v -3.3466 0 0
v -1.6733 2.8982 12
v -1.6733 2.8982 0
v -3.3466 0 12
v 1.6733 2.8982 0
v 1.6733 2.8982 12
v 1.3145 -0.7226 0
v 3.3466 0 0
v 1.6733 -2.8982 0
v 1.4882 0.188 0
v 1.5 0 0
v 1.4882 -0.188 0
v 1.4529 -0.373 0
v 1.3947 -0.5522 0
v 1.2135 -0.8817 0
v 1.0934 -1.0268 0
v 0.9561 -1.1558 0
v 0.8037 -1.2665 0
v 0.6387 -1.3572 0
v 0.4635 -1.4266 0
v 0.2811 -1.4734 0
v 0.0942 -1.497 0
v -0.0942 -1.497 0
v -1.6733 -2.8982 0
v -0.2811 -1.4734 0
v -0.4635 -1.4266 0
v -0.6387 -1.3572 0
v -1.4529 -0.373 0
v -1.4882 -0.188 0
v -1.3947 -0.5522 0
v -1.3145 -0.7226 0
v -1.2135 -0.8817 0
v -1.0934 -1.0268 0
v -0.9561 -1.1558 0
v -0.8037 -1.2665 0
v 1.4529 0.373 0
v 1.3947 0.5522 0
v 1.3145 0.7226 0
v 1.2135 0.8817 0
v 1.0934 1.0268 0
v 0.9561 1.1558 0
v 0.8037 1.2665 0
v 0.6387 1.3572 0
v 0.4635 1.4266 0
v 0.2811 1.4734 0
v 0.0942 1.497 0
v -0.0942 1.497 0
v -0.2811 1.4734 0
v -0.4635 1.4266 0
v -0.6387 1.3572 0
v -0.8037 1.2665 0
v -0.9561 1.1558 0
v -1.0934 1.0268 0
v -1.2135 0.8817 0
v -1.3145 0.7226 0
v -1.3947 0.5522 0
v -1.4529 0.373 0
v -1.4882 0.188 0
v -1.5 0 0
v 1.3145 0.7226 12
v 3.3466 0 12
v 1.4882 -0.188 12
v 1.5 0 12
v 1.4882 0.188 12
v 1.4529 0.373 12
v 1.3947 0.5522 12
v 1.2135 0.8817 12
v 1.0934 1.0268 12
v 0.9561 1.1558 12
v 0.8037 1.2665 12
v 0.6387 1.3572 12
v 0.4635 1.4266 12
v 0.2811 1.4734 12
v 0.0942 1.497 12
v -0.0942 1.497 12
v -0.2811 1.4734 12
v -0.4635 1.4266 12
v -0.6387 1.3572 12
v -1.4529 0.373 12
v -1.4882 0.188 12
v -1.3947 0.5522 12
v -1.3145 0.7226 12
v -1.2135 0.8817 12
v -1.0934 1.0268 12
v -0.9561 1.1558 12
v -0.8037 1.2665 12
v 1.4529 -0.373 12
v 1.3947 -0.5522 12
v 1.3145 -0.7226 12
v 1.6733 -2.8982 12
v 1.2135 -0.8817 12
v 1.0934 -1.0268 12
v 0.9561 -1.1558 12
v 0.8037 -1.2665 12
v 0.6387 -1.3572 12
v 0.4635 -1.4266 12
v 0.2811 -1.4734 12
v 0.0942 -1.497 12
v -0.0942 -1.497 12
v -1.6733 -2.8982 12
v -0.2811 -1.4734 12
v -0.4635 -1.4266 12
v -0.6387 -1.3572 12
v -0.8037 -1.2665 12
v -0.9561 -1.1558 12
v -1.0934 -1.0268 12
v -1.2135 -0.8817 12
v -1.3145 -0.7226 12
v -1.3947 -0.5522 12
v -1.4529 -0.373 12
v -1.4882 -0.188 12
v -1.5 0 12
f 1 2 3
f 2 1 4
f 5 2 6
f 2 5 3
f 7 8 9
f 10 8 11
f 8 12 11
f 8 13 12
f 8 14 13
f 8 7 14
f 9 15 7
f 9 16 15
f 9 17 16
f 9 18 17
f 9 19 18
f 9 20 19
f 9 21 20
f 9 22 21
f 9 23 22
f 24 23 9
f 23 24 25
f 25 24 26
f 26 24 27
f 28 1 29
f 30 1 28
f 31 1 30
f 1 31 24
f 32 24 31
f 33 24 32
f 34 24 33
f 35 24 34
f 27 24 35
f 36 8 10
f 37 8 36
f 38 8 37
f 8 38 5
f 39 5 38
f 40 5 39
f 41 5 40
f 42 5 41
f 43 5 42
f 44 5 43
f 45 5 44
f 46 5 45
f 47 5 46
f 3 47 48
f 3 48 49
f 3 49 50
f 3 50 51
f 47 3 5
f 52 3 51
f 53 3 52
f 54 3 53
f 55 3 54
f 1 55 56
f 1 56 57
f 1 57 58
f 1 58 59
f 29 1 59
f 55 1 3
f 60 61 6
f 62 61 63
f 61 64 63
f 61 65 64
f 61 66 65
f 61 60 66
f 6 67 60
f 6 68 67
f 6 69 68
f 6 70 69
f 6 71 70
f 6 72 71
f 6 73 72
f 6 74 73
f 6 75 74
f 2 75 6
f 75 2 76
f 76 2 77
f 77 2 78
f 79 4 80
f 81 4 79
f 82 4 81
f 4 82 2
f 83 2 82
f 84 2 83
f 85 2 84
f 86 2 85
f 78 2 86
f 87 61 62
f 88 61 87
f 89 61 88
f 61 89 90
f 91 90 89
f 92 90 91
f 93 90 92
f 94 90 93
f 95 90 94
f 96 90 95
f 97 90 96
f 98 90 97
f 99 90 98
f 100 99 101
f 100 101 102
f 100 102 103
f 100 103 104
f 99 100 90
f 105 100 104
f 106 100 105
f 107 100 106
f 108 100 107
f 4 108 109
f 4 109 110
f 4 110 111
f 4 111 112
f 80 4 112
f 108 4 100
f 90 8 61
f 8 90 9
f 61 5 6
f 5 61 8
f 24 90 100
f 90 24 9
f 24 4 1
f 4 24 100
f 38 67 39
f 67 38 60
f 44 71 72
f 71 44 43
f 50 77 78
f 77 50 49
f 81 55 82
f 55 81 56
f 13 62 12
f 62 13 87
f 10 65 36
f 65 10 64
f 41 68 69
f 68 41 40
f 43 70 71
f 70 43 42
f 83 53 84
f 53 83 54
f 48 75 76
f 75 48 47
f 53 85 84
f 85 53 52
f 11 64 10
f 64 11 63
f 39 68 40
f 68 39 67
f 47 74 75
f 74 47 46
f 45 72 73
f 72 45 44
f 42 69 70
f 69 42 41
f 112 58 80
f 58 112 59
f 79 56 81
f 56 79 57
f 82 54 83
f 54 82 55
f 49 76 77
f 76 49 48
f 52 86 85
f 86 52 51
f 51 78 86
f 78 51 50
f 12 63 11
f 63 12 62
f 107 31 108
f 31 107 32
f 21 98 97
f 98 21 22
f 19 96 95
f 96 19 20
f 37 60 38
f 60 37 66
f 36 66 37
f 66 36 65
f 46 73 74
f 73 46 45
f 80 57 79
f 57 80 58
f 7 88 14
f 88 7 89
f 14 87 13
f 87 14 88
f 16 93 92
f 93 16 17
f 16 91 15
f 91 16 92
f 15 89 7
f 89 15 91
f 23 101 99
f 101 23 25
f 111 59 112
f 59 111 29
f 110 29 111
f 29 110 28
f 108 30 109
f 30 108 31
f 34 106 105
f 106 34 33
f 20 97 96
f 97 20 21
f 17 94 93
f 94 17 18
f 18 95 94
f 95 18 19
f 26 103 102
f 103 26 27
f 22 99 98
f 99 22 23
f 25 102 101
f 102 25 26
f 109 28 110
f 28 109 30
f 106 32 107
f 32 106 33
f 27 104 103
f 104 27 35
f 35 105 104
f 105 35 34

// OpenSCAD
$fn = 50;


difference() {
	union() {
		linear_extrude(height = 12) {
			polygon(points = [[3.3466000000, 0.0000000000], [1.6733000000, 2.8982406163], [-1.6733000000, 2.8982406163], [-3.3466000000, 0.0000000000], [-1.6733000000, -2.8982406163], [1.6733000000, -2.8982406163]]);
		}
	}
	union() {
		cylinder(h = 12, r = 1.5000000000);
	}
}
